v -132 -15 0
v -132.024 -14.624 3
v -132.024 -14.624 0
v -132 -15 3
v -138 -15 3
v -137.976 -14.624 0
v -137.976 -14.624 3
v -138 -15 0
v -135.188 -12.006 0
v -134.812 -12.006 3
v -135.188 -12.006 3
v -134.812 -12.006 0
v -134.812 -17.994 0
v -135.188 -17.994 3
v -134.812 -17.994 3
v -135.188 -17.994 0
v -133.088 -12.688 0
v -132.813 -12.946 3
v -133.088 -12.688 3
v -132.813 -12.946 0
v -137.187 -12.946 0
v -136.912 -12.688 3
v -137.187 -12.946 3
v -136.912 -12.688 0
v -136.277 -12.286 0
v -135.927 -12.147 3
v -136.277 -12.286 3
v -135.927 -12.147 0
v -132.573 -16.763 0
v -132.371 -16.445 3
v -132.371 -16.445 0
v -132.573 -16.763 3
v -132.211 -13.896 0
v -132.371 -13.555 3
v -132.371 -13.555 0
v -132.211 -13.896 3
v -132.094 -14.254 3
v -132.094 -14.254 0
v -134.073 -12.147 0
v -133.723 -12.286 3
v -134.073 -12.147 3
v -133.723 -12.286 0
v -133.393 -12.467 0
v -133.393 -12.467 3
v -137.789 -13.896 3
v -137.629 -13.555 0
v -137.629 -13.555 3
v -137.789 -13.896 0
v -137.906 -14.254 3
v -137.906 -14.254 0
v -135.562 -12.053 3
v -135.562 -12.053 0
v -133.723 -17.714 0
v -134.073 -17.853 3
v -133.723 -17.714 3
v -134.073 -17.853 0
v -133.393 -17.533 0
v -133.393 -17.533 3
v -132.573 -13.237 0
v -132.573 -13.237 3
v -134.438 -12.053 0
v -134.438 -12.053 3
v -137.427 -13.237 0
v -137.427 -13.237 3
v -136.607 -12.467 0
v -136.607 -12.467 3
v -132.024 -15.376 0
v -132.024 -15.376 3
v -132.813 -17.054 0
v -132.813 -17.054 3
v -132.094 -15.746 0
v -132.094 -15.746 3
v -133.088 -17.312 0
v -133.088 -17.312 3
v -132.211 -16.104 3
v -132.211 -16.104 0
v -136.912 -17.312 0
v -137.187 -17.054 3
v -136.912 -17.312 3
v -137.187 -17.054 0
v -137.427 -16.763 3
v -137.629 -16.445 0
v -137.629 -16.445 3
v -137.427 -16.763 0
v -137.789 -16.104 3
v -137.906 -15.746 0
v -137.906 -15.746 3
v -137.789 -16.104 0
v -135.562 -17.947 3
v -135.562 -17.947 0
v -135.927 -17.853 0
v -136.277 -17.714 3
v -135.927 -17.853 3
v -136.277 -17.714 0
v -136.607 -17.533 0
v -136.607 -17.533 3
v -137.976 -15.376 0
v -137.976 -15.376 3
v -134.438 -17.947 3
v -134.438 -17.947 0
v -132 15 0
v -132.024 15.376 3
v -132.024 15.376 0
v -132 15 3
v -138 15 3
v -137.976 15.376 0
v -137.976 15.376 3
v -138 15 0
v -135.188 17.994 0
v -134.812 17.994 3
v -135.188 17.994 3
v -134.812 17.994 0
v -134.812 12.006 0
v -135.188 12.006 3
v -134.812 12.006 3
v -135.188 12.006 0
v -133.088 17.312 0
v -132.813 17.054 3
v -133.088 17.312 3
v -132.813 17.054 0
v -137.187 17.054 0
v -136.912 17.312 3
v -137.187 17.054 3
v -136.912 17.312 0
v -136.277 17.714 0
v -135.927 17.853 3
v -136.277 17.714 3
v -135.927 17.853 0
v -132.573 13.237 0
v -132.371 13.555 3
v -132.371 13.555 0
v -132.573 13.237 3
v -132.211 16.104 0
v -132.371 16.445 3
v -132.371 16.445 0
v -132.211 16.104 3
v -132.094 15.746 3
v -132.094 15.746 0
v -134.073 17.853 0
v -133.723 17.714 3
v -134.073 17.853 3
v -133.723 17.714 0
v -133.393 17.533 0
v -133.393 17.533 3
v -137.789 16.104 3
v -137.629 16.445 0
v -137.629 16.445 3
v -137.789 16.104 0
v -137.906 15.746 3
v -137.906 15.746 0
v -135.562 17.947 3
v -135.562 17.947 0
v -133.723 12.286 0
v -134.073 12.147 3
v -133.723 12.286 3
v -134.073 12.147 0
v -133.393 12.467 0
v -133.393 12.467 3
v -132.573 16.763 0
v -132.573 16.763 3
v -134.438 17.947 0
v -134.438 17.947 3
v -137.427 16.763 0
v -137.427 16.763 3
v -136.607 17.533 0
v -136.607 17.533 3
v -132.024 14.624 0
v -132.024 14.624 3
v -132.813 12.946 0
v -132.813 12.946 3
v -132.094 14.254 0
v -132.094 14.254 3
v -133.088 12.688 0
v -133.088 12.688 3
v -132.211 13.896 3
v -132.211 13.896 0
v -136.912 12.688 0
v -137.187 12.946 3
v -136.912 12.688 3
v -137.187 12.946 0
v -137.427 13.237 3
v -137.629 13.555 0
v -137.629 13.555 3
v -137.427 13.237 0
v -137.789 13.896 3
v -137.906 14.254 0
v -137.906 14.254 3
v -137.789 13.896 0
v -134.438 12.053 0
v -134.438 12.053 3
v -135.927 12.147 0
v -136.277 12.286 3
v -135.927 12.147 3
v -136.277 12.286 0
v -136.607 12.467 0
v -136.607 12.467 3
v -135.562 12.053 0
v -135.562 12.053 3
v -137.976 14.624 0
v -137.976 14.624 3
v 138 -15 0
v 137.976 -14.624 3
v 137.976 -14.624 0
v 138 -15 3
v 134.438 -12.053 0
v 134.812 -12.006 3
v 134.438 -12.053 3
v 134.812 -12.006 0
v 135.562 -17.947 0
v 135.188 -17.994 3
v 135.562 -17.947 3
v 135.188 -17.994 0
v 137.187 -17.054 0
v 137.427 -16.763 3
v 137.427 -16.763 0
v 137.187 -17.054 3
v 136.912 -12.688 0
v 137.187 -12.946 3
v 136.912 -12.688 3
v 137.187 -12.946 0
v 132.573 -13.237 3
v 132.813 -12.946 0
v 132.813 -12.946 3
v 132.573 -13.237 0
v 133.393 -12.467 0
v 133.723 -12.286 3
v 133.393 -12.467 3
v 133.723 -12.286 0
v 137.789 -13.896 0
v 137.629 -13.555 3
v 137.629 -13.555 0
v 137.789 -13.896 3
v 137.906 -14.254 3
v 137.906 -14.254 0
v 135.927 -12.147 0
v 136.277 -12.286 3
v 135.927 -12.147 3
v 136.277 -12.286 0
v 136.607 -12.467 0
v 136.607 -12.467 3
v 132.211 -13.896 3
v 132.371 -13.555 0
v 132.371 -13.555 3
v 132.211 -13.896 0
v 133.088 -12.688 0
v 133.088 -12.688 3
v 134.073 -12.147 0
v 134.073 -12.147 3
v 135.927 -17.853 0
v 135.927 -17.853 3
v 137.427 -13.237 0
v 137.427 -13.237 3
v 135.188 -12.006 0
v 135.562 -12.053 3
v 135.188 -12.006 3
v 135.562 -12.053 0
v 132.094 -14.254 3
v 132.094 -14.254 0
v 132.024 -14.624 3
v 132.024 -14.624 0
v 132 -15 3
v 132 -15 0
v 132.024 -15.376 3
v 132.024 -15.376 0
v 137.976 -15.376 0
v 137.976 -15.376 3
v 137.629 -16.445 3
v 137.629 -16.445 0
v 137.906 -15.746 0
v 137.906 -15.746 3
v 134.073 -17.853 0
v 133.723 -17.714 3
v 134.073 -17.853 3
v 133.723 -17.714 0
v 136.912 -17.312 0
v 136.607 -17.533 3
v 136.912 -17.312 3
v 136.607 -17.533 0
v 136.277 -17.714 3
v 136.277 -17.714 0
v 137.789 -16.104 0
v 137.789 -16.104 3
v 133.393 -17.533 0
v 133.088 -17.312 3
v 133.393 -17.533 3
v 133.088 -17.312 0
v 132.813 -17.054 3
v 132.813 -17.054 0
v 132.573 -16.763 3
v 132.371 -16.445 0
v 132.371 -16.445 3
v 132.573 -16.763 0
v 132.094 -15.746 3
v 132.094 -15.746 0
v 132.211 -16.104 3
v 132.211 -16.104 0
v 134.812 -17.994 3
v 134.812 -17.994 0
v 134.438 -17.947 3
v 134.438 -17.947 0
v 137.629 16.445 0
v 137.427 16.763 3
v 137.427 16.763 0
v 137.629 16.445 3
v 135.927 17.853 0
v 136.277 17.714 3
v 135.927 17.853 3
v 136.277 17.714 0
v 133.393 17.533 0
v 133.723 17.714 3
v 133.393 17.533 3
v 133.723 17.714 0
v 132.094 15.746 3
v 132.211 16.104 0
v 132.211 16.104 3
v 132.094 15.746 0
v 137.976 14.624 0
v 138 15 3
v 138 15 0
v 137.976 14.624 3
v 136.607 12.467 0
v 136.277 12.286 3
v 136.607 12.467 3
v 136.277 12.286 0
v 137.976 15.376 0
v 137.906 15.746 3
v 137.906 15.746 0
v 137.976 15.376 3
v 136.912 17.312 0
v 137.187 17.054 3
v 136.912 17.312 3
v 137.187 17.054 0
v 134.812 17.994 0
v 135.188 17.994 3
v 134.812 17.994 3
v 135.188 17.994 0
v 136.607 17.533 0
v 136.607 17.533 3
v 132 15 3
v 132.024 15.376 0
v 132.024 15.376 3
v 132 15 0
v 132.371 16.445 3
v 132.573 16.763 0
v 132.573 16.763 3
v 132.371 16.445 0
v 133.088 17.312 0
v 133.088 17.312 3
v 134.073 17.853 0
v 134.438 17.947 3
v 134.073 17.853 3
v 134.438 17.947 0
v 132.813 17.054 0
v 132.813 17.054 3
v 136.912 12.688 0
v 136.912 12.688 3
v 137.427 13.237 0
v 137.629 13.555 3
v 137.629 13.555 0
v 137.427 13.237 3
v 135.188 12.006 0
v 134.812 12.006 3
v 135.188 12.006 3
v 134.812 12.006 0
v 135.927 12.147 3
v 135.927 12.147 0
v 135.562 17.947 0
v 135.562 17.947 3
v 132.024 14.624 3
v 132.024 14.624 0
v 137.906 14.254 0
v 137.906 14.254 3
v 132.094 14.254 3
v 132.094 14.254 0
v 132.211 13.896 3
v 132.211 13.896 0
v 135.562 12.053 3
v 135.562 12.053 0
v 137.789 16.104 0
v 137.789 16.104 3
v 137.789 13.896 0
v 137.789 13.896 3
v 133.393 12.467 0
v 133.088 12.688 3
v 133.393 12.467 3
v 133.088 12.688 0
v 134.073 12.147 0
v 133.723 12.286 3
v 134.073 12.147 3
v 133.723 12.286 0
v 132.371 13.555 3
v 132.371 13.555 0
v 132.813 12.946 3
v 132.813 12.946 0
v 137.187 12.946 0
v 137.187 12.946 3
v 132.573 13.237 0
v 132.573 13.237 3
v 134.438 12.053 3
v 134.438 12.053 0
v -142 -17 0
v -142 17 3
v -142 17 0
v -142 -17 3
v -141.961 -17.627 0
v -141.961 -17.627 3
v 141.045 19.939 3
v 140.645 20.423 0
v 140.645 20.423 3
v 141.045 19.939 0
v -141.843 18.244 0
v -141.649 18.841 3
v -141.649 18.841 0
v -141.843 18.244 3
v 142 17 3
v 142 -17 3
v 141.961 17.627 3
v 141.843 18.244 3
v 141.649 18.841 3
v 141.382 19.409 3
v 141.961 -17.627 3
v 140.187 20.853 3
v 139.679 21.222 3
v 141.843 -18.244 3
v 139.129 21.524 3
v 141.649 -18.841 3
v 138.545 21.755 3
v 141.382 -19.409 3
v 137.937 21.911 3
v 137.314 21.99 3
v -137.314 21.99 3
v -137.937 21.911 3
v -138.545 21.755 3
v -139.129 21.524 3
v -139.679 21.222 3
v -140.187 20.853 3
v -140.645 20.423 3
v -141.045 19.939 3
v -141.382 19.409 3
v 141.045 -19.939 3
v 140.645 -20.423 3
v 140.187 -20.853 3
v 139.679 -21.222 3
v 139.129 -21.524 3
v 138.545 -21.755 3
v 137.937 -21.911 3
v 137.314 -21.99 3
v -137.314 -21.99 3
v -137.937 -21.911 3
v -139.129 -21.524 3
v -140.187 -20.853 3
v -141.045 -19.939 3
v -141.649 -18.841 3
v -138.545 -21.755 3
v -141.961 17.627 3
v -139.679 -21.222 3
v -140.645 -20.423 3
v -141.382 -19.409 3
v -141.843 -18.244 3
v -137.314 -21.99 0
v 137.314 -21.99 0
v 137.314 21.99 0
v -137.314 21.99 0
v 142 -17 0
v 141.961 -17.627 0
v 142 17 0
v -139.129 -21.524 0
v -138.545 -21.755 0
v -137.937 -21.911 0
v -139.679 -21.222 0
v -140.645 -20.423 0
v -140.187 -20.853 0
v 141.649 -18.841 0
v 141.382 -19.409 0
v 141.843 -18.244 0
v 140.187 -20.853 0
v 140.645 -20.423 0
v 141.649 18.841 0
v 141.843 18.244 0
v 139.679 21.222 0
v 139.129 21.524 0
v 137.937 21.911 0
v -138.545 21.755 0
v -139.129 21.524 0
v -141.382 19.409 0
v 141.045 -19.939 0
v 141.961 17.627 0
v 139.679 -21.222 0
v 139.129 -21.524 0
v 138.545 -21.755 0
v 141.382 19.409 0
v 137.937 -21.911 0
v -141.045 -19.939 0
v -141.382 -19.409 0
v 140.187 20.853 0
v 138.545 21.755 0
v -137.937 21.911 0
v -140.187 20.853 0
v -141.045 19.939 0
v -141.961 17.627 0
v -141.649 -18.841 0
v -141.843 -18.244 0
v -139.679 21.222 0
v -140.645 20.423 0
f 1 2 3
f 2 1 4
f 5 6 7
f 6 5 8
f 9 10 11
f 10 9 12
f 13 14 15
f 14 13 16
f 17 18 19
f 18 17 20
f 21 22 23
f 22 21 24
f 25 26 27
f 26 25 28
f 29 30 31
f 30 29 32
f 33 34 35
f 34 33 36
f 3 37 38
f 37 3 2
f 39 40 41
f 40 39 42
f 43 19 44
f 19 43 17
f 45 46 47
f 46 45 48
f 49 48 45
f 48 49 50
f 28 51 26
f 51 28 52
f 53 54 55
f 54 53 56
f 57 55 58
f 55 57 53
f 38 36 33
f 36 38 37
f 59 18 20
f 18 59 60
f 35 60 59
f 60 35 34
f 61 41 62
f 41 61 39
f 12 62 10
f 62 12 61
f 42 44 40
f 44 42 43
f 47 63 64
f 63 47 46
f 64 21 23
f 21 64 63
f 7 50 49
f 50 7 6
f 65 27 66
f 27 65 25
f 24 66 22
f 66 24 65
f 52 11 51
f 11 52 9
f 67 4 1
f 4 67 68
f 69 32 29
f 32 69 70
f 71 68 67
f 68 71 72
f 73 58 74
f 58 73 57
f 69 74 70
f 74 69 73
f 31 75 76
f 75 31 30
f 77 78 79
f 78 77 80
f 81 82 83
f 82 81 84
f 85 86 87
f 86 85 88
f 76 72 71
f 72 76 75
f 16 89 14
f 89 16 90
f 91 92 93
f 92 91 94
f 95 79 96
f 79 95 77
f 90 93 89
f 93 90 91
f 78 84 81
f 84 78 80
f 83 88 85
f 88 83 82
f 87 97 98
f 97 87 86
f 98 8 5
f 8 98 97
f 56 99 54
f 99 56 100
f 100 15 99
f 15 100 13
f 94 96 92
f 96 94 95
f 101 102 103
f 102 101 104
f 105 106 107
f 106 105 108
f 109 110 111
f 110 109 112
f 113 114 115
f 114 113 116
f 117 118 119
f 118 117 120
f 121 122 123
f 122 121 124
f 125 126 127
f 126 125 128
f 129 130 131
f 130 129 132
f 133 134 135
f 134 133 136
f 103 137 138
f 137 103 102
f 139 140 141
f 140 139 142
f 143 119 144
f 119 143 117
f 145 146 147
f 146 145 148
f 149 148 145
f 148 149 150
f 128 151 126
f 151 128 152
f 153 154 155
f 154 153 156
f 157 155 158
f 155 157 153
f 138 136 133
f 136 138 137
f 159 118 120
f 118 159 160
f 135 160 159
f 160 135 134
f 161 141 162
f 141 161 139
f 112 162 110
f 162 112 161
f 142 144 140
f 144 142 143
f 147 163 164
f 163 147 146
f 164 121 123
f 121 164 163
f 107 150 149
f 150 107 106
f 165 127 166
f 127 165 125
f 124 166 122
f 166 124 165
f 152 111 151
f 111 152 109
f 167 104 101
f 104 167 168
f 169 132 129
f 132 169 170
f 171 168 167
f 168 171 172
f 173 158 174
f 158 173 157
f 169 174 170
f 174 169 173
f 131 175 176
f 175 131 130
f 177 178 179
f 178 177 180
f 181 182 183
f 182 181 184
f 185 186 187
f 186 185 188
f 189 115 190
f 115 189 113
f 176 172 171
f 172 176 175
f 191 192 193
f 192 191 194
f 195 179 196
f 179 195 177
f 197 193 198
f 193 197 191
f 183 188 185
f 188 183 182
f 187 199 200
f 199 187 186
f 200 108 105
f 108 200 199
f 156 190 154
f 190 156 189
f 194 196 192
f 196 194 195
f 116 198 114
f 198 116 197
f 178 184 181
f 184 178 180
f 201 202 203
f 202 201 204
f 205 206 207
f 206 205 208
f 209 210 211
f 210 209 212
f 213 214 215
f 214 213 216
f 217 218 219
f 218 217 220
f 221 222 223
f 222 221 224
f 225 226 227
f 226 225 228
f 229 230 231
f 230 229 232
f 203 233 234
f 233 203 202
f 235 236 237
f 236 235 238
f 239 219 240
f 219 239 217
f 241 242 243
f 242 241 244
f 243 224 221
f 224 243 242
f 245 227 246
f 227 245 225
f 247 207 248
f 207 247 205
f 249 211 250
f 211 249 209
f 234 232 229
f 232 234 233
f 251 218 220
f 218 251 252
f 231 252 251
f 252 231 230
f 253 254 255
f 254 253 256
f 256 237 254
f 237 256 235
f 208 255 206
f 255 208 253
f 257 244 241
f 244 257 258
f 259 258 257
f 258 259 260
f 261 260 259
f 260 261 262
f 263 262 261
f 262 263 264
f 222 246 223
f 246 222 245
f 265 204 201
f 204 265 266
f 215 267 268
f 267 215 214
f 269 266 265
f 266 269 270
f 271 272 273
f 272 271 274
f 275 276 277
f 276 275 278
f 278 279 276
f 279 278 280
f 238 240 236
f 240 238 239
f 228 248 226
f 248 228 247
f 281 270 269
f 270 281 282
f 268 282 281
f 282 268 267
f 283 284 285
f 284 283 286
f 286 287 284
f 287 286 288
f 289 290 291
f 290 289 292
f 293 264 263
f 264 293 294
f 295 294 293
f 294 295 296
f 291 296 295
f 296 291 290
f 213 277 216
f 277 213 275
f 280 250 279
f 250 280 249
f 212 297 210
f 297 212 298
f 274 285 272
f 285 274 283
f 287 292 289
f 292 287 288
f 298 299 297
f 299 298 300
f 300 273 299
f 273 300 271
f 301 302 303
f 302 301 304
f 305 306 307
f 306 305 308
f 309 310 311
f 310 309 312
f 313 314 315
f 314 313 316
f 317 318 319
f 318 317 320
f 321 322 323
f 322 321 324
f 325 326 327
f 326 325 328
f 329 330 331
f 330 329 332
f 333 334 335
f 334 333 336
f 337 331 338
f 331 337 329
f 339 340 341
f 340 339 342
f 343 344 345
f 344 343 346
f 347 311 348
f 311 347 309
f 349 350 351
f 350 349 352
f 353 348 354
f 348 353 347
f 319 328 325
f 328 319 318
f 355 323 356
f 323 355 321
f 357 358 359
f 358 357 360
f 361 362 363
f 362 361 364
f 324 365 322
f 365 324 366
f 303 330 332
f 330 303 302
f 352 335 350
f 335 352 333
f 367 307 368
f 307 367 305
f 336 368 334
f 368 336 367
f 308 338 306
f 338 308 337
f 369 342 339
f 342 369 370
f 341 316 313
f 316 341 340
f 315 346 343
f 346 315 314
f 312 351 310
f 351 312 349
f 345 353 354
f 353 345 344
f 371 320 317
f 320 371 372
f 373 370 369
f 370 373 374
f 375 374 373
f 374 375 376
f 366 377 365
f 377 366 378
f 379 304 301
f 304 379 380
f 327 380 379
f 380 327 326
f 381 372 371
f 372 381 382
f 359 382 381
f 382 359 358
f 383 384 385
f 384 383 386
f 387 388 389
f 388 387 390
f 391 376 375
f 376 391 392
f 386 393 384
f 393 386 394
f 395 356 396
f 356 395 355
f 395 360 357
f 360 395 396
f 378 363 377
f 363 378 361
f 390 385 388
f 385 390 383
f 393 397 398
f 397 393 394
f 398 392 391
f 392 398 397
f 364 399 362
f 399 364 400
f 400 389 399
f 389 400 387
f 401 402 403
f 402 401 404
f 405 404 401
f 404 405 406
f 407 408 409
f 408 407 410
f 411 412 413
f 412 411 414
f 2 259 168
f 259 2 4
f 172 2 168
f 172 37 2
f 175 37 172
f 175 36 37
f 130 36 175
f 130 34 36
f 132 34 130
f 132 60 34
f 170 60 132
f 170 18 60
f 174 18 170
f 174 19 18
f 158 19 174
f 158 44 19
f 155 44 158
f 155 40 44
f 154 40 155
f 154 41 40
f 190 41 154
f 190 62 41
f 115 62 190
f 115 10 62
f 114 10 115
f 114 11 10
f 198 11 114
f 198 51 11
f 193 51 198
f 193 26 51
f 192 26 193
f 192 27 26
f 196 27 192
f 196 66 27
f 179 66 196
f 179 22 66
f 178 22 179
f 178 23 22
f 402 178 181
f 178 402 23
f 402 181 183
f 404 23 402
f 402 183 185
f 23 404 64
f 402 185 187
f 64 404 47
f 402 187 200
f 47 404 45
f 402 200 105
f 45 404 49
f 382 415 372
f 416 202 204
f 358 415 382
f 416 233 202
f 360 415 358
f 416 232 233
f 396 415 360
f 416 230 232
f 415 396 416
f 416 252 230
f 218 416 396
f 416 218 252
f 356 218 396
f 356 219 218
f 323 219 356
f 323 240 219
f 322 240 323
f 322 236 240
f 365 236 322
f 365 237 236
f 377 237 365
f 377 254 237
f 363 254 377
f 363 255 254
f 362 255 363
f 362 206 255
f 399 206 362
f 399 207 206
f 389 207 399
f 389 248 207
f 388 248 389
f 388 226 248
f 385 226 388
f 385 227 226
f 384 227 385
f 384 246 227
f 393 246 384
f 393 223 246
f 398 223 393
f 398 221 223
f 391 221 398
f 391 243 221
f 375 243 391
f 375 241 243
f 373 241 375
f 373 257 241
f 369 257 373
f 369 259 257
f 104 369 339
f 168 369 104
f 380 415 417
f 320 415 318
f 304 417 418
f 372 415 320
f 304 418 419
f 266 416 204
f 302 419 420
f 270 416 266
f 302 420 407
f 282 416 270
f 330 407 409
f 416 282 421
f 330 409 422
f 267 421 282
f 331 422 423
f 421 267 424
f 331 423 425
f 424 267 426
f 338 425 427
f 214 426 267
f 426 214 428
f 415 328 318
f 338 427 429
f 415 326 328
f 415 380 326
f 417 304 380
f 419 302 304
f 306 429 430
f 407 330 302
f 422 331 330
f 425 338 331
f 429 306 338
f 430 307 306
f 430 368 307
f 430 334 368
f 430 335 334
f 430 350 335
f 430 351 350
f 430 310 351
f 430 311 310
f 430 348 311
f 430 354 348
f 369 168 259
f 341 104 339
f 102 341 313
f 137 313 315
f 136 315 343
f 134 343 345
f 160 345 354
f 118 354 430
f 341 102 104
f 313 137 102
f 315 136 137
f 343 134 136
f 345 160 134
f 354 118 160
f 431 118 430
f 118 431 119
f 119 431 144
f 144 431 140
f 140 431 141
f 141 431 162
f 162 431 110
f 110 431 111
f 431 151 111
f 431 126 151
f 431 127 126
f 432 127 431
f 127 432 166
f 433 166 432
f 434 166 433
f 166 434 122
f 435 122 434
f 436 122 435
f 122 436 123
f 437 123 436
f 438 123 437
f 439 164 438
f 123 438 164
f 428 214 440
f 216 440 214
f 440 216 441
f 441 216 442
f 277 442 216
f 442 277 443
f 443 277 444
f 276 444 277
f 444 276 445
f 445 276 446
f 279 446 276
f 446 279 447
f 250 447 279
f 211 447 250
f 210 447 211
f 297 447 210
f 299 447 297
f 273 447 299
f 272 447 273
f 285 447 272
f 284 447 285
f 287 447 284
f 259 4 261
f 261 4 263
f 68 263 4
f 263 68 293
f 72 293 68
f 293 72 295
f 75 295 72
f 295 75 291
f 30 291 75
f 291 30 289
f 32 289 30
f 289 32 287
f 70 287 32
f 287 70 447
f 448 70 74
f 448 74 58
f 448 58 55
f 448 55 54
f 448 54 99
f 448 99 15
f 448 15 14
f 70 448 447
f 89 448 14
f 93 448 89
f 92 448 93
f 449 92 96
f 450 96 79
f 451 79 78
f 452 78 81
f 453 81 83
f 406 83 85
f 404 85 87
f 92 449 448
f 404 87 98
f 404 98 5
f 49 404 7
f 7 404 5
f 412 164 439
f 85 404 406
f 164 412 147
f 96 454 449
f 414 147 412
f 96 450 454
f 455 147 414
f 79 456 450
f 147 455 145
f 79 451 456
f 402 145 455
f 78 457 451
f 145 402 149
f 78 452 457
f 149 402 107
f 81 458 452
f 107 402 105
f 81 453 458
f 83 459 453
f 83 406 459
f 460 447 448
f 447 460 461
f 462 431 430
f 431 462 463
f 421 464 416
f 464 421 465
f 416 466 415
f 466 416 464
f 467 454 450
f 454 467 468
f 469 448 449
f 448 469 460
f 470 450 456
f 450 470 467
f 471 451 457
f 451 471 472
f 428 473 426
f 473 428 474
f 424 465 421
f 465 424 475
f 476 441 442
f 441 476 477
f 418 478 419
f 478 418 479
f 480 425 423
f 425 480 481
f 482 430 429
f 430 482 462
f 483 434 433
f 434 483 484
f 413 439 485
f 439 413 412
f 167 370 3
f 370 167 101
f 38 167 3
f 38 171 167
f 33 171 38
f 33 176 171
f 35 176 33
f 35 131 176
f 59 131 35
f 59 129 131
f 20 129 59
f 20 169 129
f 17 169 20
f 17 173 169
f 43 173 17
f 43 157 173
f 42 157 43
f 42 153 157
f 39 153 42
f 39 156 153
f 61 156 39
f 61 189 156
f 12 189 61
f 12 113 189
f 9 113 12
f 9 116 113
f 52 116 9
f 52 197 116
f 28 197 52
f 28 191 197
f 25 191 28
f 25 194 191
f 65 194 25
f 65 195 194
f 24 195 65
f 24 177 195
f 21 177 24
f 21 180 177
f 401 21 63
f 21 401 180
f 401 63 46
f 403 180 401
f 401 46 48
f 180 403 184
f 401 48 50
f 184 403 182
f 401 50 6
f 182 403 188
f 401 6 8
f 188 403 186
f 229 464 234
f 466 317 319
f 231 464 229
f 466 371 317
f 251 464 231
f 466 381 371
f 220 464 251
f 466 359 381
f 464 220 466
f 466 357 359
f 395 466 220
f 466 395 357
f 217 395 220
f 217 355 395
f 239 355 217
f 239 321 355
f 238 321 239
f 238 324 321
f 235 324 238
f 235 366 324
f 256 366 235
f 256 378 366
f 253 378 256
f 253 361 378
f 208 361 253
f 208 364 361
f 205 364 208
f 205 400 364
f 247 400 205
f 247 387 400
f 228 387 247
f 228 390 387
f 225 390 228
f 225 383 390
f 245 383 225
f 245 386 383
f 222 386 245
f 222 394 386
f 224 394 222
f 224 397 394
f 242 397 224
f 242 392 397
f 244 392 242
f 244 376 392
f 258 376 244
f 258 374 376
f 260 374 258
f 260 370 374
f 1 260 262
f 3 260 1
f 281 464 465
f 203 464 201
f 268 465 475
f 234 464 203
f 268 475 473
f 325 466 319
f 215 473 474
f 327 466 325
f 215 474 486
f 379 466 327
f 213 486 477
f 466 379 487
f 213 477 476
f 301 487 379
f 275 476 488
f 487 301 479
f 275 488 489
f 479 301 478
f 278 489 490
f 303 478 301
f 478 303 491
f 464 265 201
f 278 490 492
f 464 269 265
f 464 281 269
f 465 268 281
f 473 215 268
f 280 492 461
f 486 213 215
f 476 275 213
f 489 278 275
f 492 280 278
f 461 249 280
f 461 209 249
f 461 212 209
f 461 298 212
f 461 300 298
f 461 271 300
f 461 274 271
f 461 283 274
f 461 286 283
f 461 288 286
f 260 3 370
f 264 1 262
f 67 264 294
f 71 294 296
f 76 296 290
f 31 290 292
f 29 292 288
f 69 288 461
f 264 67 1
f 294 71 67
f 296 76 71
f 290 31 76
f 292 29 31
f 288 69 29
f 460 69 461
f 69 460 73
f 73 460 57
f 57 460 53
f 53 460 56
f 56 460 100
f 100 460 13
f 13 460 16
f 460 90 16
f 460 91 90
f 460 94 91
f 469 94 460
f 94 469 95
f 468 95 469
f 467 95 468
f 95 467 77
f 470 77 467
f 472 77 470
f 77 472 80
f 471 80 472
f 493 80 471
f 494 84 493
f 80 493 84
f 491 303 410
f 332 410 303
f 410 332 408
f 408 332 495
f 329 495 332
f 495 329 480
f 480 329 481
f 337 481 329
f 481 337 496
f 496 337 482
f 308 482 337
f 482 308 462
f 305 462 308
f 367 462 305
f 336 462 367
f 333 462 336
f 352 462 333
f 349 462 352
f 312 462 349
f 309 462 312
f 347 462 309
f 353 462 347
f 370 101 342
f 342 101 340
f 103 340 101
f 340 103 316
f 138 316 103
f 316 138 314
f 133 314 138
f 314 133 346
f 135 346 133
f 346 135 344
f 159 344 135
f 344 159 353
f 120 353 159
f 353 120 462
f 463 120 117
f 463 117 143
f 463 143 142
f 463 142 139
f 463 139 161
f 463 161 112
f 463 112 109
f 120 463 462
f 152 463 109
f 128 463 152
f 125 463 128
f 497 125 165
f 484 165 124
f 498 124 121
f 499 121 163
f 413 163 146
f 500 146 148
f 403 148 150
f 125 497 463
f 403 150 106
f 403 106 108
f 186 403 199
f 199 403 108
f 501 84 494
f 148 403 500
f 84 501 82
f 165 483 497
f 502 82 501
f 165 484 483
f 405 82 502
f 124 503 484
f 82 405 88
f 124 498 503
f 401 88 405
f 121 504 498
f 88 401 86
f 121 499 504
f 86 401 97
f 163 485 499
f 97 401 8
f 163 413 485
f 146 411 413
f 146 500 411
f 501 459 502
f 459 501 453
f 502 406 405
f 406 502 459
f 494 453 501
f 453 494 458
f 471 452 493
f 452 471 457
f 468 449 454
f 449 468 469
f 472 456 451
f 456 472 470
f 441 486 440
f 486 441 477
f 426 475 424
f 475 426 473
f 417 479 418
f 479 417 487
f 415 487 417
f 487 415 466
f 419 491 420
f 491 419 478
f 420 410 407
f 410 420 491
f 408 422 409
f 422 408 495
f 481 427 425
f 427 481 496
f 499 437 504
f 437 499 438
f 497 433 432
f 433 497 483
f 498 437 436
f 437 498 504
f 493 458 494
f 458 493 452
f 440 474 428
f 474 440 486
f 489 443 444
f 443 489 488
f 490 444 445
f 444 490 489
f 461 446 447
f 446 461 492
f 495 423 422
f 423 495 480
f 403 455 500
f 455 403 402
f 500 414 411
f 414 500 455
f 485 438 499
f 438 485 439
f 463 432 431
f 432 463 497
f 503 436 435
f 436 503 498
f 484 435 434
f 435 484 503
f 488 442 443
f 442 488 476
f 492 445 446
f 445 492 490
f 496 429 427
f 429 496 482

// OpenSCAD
$fn = 50;


difference() {
	union() {
		hull() {
			translate(v = [-137.0000000000, 17.0000000000, 0]) {
				cylinder(h = 3, r = 5);
			}
			translate(v = [137.0000000000, 17.0000000000, 0]) {
				cylinder(h = 3, r = 5);
			}
			translate(v = [-137.0000000000, -17.0000000000, 0]) {
				cylinder(h = 3, r = 5);
			}
			translate(v = [137.0000000000, -17.0000000000, 0]) {
				cylinder(h = 3, r = 5);
			}
		}
	}
	union() {
		translate(v = [-135.0000000000, -15.0000000000, -100.0000000000]) {
			cylinder(h = 200, r = 3.0000000000);
		}
		translate(v = [-135.0000000000, 15.0000000000, -100.0000000000]) {
			cylinder(h = 200, r = 3.0000000000);
		}
		translate(v = [135.0000000000, -15.0000000000, -100.0000000000]) {
			cylinder(h = 200, r = 3.0000000000);
		}
		translate(v = [135.0000000000, 15.0000000000, -100.0000000000]) {
			cylinder(h = 200, r = 3.0000000000);
		}
	}
}
